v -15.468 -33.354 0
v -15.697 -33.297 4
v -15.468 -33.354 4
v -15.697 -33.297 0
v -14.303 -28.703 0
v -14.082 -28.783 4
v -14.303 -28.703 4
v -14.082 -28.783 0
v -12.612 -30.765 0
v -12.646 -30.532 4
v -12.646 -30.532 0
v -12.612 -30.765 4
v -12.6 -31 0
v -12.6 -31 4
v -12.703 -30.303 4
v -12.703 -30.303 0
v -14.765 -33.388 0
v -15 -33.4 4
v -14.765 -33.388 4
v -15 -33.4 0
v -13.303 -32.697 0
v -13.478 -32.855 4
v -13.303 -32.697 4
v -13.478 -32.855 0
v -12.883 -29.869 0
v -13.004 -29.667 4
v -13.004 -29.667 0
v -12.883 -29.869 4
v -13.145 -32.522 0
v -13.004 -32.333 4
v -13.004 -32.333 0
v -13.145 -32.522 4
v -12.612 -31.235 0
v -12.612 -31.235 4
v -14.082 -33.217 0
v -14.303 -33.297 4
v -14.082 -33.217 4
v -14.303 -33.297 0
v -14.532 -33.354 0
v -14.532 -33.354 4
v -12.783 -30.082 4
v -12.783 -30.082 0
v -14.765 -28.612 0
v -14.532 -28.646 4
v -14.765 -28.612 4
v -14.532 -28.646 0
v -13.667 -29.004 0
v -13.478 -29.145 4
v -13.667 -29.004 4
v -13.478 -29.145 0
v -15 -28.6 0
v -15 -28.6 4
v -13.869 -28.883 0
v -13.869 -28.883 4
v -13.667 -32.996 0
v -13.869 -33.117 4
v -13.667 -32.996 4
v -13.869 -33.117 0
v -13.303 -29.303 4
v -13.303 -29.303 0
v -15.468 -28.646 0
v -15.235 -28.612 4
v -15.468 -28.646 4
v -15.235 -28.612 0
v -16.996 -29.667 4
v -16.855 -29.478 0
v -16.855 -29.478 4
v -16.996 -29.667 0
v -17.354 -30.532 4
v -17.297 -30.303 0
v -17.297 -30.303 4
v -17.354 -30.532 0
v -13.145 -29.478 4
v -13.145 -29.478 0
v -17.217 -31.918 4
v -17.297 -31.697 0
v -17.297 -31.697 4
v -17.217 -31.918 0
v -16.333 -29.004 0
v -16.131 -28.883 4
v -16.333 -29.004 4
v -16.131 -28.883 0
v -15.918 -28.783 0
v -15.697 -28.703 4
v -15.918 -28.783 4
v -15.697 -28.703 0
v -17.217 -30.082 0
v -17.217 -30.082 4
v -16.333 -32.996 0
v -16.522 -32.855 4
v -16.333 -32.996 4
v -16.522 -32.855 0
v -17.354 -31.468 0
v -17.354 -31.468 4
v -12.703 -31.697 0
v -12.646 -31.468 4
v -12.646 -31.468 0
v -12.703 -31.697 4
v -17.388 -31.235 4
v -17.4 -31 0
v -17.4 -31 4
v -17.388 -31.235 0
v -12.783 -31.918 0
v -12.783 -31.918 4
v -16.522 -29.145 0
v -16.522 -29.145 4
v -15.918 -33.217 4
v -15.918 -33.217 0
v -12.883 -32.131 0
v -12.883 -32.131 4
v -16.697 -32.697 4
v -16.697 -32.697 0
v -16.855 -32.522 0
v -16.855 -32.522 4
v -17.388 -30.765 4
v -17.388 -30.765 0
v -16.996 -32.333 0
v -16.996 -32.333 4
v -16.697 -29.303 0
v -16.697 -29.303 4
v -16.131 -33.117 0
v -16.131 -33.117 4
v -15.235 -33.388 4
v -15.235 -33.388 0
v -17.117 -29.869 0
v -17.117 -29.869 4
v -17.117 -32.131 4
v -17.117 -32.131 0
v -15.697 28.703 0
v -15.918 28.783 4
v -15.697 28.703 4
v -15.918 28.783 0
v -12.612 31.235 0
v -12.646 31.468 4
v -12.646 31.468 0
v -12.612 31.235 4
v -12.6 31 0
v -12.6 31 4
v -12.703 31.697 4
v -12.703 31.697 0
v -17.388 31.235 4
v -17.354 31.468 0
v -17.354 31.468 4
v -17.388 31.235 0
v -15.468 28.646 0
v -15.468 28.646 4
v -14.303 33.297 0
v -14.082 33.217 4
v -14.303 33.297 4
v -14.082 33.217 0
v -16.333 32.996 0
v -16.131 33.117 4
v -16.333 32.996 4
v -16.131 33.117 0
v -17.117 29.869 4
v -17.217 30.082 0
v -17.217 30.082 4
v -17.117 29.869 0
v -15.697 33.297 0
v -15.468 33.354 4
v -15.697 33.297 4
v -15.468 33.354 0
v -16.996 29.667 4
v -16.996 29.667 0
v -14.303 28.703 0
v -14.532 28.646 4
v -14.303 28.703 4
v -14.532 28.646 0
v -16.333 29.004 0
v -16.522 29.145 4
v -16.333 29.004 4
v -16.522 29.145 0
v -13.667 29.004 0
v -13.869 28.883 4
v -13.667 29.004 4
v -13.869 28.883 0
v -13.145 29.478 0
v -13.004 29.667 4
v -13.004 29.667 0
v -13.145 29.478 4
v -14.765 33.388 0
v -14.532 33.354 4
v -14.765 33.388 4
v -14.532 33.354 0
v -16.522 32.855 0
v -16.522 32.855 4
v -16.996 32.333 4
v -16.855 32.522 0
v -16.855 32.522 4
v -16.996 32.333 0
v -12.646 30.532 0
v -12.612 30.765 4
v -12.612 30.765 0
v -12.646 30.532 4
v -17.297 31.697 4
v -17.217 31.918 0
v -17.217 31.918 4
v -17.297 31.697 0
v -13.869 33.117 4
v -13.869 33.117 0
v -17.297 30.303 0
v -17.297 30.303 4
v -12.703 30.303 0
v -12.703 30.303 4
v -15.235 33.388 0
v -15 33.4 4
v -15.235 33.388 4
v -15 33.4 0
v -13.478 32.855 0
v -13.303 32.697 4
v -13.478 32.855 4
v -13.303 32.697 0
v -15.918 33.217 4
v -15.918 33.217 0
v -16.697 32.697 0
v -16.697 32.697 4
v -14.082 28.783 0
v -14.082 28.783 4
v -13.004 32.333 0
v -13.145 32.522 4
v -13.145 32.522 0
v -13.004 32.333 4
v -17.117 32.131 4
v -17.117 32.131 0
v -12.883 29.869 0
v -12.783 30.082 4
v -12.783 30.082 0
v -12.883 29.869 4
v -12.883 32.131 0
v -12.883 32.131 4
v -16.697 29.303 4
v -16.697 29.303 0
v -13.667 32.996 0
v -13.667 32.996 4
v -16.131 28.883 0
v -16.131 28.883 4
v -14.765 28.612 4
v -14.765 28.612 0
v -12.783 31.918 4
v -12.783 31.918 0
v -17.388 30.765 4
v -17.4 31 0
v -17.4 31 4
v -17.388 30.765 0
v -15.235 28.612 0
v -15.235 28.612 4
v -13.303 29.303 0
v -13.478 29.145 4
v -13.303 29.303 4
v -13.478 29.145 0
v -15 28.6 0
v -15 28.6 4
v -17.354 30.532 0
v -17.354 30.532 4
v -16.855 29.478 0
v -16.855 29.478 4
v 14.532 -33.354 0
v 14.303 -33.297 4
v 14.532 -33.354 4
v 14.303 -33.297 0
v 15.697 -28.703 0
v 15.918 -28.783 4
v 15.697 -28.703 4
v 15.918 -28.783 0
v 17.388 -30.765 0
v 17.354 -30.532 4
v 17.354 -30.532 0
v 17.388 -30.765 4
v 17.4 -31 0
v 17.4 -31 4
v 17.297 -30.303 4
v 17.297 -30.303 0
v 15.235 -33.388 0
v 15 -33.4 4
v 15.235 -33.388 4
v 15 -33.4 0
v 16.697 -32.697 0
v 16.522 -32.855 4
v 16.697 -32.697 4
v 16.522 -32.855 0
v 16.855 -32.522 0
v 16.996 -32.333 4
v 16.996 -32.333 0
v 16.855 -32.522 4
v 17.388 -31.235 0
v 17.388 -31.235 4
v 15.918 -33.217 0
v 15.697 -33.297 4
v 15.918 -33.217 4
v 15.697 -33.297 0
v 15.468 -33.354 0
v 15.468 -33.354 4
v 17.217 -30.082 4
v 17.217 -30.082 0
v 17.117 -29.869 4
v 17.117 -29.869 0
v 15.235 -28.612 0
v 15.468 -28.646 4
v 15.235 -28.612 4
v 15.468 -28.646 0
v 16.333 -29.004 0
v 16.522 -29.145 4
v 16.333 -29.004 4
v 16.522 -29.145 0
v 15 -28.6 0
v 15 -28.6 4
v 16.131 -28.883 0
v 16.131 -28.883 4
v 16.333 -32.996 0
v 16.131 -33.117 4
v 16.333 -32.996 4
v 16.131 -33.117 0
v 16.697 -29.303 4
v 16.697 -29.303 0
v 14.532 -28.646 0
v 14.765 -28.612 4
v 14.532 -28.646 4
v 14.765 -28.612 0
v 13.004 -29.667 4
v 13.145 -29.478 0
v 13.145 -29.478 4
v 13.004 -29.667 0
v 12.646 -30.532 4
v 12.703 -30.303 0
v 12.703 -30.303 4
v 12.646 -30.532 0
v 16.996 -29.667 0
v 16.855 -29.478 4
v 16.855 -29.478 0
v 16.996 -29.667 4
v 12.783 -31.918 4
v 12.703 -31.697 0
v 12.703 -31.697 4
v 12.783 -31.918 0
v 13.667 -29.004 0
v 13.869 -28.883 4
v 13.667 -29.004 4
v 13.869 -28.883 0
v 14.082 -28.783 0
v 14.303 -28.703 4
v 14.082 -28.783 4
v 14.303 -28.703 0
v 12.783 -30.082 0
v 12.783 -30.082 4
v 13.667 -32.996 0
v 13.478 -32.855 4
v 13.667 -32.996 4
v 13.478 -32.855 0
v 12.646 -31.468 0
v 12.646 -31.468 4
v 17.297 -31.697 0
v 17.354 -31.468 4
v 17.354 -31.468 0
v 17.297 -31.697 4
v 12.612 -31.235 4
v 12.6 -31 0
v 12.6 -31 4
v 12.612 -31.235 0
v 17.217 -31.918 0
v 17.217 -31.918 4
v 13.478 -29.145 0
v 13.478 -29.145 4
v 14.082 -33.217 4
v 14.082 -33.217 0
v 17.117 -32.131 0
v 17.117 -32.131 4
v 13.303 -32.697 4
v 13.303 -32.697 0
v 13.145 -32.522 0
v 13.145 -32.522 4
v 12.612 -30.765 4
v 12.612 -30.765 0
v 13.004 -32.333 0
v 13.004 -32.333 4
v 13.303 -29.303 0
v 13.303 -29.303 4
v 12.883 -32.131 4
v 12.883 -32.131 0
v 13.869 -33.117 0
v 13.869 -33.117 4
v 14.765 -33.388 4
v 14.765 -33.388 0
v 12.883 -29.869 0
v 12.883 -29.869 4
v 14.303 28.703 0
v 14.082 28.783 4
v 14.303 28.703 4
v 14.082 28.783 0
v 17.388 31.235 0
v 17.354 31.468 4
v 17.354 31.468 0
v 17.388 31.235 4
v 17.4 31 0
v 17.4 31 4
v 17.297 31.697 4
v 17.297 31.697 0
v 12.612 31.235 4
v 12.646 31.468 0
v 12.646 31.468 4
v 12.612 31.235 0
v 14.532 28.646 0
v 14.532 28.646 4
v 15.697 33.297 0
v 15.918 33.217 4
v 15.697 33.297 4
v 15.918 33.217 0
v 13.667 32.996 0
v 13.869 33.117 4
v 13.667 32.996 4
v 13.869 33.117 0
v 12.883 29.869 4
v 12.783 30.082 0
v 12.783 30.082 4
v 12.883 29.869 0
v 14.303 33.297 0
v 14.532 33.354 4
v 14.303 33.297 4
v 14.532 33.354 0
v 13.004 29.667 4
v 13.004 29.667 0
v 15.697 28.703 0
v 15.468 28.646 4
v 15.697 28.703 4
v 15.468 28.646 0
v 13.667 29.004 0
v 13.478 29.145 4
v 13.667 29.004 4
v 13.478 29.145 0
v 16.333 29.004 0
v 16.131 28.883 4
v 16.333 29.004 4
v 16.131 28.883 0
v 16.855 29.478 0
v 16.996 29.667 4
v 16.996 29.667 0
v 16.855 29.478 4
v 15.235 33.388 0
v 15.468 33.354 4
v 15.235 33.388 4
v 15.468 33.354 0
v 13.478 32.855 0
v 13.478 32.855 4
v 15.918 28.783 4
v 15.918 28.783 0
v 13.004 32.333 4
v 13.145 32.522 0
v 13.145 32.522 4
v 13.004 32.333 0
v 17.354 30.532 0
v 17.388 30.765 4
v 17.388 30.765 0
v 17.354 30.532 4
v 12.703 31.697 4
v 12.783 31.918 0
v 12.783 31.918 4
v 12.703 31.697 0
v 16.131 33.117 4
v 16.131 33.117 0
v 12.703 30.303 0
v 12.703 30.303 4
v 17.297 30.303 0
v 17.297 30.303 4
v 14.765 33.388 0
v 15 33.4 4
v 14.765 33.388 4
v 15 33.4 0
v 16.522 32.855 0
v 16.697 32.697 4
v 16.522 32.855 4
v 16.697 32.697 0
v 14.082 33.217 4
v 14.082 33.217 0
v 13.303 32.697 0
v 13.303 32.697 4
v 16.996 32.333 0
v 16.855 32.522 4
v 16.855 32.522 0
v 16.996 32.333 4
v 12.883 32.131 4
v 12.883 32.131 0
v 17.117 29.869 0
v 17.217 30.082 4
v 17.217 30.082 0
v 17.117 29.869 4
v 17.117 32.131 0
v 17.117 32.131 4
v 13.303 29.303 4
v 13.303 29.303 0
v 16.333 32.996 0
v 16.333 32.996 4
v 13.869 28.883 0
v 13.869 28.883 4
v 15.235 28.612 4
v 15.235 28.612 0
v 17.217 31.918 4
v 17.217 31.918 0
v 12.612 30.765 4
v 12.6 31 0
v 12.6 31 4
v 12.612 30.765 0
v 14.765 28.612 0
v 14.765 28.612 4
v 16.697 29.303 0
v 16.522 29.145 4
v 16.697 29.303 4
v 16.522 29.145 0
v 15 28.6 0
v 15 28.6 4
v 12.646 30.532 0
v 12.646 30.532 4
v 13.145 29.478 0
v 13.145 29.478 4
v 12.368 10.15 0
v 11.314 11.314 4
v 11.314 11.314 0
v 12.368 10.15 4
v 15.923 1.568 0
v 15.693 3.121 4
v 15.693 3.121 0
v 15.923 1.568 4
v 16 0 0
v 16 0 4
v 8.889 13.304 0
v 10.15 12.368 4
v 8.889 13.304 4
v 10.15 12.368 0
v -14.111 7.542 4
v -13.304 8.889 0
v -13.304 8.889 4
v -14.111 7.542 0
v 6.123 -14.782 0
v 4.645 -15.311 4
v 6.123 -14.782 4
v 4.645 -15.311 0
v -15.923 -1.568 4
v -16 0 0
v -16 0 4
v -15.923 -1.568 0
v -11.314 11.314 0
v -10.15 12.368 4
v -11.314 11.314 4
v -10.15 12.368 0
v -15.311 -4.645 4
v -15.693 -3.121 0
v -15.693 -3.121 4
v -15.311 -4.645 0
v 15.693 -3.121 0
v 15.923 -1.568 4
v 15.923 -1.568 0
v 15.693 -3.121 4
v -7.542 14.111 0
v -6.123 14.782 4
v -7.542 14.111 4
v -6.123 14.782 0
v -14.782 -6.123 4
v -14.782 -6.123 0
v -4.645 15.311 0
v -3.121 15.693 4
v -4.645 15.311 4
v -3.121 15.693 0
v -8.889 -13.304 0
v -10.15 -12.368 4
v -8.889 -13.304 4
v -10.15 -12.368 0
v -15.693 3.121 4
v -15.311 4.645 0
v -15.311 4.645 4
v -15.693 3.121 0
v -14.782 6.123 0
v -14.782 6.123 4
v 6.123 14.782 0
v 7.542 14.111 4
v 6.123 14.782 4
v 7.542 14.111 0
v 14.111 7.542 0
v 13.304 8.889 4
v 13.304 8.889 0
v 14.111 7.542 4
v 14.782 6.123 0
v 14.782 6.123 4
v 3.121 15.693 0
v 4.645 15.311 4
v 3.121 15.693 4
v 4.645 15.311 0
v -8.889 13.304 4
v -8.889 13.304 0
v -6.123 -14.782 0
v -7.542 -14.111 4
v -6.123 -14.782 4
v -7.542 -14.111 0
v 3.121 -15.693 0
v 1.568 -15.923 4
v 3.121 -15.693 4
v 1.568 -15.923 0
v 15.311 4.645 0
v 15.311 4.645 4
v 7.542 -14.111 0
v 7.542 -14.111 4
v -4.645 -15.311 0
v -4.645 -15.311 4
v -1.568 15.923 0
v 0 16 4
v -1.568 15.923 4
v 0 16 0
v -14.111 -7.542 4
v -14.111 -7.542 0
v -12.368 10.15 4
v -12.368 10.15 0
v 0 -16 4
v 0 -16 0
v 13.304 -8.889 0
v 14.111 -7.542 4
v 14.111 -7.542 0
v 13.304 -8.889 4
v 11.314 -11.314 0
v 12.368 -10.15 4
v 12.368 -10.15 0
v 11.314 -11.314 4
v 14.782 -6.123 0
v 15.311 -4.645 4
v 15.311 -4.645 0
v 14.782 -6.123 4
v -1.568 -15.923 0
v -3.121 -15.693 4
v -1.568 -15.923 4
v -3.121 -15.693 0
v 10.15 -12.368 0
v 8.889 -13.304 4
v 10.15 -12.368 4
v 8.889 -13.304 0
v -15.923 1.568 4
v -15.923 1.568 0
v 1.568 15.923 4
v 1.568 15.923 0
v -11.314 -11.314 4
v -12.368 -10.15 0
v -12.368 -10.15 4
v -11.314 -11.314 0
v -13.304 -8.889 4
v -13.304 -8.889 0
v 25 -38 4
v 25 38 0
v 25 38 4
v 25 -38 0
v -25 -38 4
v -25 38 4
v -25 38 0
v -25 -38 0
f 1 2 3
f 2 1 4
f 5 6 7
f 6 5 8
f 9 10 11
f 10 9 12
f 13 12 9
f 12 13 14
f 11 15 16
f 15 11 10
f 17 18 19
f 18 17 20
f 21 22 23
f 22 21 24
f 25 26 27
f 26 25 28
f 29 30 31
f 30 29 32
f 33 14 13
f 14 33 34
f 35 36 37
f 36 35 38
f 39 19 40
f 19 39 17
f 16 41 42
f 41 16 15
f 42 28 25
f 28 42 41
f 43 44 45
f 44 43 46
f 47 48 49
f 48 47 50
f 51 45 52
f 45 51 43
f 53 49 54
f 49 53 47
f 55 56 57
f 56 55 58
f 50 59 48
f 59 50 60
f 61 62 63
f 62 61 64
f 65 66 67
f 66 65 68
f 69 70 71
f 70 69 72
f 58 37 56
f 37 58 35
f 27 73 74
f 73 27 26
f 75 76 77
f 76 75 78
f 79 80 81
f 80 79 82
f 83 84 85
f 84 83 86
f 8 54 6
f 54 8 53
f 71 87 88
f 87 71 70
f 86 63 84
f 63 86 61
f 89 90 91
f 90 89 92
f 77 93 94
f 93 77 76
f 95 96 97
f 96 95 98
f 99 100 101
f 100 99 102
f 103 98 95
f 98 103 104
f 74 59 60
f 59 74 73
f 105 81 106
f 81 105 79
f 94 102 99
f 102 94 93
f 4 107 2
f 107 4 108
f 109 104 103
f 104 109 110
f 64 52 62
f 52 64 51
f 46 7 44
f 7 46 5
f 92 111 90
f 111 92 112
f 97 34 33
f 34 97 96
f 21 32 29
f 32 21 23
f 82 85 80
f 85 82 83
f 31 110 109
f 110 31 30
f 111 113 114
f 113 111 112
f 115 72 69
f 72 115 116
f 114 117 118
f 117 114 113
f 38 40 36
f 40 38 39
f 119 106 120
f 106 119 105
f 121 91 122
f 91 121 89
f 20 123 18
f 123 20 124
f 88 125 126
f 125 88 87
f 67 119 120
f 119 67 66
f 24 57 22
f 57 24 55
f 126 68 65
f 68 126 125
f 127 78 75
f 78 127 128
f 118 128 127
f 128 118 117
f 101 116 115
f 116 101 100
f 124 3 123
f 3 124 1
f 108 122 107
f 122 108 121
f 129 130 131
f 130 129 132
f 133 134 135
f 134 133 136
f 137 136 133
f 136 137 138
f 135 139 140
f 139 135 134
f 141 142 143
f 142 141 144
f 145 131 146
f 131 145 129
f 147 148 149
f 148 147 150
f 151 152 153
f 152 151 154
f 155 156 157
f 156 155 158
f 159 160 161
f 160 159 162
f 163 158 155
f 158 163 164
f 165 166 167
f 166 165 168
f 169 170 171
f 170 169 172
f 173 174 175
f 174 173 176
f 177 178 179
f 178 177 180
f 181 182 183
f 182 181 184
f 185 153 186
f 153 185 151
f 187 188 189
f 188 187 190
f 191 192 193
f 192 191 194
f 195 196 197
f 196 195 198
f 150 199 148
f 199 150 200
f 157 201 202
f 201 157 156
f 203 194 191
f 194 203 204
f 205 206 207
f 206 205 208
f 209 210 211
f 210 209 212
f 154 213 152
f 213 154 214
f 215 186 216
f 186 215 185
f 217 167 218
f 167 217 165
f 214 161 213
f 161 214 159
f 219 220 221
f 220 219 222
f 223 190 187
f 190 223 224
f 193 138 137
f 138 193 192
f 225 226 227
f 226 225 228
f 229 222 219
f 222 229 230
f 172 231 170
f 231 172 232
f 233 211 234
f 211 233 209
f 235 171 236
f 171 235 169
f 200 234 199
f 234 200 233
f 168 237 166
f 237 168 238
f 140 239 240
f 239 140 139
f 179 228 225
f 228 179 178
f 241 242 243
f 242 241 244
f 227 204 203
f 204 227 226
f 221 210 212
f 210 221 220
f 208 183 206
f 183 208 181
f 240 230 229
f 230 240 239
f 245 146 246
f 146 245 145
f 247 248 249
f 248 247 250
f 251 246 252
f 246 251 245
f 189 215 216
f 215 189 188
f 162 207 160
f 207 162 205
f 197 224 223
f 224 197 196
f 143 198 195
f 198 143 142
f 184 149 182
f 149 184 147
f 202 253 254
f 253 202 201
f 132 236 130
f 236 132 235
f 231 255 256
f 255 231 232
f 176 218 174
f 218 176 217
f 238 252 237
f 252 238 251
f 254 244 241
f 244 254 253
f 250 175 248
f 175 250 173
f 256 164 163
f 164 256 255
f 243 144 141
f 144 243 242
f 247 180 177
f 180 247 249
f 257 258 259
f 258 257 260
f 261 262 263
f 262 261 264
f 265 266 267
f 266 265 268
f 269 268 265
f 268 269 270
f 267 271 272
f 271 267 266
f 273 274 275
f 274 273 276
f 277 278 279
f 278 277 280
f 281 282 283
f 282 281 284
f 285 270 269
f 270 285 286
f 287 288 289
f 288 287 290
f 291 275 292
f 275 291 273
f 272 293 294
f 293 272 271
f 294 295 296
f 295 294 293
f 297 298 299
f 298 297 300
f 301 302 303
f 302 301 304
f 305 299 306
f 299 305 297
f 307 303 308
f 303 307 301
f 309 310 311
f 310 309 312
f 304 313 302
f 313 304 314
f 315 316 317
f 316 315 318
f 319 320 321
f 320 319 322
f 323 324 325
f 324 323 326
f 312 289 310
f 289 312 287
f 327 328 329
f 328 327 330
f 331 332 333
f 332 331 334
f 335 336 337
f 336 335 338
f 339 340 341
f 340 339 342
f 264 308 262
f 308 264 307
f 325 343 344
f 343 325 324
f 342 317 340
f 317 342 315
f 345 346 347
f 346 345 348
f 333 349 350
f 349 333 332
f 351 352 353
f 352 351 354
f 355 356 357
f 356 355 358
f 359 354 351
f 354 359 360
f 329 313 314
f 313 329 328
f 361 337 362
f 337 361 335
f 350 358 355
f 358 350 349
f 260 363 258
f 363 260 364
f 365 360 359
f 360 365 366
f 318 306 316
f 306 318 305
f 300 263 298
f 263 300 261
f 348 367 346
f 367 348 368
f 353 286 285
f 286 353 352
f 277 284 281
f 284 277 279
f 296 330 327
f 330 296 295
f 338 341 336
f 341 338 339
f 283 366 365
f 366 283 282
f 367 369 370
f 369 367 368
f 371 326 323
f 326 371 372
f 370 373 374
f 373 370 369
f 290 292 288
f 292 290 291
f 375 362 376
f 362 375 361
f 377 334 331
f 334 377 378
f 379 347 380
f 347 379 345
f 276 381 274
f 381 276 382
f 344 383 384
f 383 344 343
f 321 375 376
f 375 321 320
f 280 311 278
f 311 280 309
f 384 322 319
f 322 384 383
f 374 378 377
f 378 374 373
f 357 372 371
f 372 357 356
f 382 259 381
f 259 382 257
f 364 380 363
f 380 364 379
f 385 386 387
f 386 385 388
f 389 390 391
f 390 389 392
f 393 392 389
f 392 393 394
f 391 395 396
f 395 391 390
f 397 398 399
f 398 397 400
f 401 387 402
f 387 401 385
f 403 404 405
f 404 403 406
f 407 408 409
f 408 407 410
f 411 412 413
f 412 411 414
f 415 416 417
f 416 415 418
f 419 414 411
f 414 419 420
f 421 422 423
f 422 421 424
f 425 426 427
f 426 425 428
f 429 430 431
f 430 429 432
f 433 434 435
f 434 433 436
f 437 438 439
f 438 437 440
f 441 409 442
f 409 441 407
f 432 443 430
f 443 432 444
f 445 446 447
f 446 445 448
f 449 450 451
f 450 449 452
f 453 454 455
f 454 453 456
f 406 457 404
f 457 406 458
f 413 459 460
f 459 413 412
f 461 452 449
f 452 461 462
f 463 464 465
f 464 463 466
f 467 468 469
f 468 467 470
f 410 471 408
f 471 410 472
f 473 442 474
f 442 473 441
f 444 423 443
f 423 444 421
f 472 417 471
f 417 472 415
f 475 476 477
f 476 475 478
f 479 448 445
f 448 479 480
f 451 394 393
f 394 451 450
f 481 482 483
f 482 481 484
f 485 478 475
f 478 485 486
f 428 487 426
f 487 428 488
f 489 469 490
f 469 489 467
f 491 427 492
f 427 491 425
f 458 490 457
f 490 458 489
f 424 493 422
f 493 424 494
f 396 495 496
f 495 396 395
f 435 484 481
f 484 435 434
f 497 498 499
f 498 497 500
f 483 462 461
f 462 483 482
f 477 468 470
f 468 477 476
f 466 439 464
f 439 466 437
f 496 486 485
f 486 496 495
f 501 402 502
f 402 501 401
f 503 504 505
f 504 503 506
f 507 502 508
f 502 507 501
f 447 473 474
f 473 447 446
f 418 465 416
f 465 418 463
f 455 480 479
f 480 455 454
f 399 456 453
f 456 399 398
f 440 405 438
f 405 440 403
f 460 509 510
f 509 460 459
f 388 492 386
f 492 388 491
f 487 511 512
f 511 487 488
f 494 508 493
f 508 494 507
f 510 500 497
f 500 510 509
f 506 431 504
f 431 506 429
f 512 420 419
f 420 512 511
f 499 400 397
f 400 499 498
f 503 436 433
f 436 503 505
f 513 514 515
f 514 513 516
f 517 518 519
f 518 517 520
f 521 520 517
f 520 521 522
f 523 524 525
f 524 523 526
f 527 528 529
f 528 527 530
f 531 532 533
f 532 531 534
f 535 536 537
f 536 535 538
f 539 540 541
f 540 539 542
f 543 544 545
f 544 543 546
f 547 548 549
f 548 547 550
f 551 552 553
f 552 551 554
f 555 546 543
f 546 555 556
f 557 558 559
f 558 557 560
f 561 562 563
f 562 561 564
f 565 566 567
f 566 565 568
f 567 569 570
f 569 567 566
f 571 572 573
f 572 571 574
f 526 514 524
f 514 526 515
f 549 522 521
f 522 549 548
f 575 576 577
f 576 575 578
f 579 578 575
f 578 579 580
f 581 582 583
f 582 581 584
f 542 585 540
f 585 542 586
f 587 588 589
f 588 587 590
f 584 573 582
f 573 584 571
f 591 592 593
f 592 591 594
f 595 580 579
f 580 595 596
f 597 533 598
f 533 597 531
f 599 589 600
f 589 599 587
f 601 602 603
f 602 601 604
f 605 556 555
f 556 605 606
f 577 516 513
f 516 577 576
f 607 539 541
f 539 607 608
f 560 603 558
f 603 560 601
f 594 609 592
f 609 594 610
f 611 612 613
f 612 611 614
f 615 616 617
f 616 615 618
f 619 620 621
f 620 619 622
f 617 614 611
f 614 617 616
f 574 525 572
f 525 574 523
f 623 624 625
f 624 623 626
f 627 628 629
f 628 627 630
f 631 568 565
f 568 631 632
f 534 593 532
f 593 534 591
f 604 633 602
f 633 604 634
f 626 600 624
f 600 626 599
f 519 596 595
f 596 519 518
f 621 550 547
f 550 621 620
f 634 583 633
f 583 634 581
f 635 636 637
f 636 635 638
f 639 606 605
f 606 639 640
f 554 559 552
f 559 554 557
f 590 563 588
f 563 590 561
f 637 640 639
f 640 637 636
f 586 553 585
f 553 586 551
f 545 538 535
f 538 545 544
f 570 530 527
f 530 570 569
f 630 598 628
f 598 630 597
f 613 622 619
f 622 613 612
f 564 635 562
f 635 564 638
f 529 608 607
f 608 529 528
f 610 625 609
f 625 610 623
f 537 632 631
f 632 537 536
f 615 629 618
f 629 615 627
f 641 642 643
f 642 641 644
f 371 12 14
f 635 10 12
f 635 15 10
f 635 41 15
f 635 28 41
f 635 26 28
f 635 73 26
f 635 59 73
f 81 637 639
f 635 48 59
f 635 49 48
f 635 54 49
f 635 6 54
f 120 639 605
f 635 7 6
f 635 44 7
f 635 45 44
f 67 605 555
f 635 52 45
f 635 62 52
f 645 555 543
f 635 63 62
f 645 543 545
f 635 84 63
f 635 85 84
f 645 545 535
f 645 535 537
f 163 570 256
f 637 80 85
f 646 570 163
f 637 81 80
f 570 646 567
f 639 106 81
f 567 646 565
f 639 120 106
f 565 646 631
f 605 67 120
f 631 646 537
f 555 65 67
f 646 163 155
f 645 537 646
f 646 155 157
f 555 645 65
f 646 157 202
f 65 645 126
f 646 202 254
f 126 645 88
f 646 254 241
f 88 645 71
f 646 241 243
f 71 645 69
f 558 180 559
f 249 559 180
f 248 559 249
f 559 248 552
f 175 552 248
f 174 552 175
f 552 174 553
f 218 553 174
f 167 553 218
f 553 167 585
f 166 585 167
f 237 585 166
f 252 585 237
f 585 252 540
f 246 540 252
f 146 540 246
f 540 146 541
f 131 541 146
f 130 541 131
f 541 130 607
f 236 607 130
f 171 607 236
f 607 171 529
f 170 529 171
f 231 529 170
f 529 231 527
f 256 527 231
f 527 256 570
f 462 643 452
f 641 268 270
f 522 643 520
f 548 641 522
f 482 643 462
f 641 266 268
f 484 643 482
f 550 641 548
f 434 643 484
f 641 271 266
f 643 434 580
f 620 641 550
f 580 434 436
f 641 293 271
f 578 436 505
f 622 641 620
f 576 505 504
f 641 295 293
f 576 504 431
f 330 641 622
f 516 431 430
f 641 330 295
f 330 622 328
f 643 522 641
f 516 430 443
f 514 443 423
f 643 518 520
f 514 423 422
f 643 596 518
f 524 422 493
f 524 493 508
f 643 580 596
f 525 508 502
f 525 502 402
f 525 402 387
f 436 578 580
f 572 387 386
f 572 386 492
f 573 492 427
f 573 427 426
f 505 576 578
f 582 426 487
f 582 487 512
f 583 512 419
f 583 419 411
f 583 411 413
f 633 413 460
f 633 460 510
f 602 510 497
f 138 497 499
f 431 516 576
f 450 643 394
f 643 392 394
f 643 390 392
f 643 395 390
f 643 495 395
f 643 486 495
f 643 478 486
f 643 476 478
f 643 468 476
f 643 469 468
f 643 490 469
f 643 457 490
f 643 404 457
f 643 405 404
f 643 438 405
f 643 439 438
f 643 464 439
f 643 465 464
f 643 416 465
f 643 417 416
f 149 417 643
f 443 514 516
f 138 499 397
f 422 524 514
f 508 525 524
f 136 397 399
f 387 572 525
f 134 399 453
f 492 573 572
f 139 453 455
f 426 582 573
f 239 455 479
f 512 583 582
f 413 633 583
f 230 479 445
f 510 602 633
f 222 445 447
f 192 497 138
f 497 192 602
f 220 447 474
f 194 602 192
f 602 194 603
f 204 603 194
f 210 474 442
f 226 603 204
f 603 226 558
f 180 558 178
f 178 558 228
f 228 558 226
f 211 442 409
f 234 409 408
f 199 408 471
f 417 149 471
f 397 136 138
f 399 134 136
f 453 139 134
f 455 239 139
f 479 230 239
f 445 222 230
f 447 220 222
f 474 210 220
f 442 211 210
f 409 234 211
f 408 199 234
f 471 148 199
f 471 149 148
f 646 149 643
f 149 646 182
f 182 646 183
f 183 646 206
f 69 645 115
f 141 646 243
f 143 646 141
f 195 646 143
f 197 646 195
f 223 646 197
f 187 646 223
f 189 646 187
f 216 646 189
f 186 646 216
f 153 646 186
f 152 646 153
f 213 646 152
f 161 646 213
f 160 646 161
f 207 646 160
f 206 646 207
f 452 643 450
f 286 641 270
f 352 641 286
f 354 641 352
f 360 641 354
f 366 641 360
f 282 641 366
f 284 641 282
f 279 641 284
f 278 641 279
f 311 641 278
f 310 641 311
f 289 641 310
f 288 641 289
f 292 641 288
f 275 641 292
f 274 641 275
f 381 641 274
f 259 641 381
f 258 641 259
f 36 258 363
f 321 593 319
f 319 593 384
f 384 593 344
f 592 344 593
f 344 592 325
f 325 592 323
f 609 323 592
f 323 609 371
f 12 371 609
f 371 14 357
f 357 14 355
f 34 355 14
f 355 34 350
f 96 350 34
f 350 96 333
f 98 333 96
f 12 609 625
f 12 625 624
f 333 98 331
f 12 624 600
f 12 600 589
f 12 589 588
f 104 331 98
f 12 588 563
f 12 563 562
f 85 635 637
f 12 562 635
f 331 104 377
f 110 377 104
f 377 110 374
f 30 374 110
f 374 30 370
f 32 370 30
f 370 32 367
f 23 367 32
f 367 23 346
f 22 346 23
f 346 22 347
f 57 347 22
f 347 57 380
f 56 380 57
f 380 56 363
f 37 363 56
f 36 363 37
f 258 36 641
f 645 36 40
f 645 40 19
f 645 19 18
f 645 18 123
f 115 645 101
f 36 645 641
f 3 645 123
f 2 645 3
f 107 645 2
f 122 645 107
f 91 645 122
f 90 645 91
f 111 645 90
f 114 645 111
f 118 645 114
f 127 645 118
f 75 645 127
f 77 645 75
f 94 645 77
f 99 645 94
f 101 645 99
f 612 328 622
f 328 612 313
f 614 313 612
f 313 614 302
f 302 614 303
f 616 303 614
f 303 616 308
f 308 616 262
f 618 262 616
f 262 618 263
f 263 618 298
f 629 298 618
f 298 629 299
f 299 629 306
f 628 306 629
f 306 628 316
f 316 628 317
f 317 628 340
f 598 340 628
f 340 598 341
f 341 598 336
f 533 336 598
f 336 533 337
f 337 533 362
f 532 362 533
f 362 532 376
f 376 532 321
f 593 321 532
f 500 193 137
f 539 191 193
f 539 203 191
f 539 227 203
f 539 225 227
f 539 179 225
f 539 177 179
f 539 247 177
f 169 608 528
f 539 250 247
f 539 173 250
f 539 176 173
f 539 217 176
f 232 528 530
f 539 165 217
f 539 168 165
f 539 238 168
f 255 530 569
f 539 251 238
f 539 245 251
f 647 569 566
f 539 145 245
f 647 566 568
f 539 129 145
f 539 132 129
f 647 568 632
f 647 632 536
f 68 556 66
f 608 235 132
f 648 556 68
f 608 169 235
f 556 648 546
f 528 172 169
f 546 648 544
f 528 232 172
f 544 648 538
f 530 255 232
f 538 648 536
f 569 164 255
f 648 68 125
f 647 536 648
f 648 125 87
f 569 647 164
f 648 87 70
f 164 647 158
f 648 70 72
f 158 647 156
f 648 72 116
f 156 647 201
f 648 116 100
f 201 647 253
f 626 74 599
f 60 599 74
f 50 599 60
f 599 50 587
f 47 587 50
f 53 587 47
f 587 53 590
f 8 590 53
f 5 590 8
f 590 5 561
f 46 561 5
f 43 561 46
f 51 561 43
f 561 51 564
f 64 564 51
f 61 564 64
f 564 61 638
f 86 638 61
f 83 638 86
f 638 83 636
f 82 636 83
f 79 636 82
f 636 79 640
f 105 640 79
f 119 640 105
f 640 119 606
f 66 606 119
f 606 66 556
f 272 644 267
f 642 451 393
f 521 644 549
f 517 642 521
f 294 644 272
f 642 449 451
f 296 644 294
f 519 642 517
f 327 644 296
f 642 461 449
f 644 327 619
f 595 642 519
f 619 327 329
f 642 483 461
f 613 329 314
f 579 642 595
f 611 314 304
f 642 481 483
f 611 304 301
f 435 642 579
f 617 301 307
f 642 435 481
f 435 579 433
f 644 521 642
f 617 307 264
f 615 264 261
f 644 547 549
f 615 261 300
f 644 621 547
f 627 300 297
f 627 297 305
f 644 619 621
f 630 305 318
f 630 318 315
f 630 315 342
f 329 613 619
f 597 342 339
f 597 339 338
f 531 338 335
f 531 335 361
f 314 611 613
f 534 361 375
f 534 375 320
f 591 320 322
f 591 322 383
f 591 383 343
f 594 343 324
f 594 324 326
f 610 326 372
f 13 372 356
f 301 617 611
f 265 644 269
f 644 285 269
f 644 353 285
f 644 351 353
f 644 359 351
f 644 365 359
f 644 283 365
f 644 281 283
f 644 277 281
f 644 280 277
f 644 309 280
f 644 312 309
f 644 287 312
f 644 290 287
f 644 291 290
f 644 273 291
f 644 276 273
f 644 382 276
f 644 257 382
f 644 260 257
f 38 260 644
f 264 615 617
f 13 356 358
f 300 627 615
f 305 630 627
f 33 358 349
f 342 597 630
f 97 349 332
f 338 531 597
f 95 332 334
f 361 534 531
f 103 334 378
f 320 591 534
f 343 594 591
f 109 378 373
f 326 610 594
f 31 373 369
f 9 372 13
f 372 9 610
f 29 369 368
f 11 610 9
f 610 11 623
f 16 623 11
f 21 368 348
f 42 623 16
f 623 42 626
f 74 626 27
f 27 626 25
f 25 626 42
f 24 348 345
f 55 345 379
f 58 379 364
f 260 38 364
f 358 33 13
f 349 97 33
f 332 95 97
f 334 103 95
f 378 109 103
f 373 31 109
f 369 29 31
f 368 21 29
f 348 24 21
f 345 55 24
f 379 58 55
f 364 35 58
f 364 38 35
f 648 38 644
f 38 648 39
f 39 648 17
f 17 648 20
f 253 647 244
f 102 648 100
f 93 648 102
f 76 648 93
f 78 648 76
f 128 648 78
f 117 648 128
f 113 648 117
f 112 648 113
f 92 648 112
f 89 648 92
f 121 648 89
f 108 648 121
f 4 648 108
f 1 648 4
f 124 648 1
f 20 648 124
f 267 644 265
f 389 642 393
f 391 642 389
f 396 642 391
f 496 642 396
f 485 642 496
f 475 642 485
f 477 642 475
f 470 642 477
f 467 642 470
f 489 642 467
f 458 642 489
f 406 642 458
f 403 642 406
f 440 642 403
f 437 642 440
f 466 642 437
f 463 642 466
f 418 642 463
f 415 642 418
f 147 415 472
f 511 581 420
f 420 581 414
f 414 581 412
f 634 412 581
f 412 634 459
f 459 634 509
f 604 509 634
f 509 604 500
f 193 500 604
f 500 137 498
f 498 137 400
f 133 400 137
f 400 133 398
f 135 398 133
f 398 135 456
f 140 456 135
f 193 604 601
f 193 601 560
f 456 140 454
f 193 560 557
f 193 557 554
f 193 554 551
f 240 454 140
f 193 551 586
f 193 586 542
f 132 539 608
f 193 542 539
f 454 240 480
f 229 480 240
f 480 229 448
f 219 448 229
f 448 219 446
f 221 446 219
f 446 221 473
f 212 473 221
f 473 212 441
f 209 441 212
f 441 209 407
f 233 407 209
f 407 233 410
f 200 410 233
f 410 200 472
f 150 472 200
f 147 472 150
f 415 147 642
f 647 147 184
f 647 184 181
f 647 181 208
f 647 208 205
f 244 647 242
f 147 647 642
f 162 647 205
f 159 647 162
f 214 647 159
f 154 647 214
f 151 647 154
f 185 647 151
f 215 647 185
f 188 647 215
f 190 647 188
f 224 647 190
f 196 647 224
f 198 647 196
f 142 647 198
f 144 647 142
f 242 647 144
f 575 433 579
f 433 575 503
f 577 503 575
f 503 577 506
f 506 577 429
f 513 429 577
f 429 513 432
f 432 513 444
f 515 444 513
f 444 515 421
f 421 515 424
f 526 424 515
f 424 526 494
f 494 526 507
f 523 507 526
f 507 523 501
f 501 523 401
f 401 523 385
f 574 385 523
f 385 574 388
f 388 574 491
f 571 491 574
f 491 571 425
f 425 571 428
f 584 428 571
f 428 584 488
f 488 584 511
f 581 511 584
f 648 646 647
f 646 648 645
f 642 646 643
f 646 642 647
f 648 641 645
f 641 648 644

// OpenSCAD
// =====================================================================
//  Flat mounting plate for the torque hinge (50 x 76 mm plate)
//
//  Same hinge interface as hinge_bracket.scad, but without the
//  wrap-around bracket: just a flat 4 mm plate with the screw holes in
//  the proper places. The 4 hinge screws pass through the plate and
//  bite into the surface below.
//
//  Hinge interface taken from the drawing:
//    - plate 50 x 76
//    - 4 screws on a 30 x 62 pattern, 4.8 clearance
//    - central 32 dia boss recess, 12 dia center hole
// =====================================================================

/* [Plate] */
plate_w     = 50;    // width, matching the hinge plate (X)
plate_h     = 76;    // length, matching the hinge plate (Y)
plate_t     = 4;     // plate thickness

/* [Hinge mounting] */
hole_dx     = 30;    // screw spacing across the plate
hole_dy     = 62;    // screw spacing along the plate
hole_d      = 4.8;   // M4 clearance hole
hub_relief  = true;  // central boss recess + center hole
hub_d       = 32;    // central boss recess diameter
hub_depth   = 5;     // boss recess depth (through the 4 mm plate)
center_d    = 12;    // central through hole

$fn = 64;

module mount() {
    difference() {
        // flat plate, sitting on z = 0
        translate([0, 0, plate_t / 2])
            cube([plate_w, plate_h, plate_t], center = true);

        // 4 hinge screw holes
        for (sx = [-1, 1], sy = [-1, 1])
            translate([sx * hole_dx / 2, sy * hole_dy / 2, plate_t / 2])
                cylinder(d = hole_d, h = plate_t + 2, center = true);

        if (hub_relief) {
            // central boss recess, cut from the hinge face
            translate([0, 0, plate_t - hub_depth])
                cylinder(d = hub_d, h = hub_depth + 1);

            // central through hole
            translate([0, 0, plate_t / 2])
                cylinder(d = center_d, h = plate_t + 2, center = true);
        }
    }
}

mount();
